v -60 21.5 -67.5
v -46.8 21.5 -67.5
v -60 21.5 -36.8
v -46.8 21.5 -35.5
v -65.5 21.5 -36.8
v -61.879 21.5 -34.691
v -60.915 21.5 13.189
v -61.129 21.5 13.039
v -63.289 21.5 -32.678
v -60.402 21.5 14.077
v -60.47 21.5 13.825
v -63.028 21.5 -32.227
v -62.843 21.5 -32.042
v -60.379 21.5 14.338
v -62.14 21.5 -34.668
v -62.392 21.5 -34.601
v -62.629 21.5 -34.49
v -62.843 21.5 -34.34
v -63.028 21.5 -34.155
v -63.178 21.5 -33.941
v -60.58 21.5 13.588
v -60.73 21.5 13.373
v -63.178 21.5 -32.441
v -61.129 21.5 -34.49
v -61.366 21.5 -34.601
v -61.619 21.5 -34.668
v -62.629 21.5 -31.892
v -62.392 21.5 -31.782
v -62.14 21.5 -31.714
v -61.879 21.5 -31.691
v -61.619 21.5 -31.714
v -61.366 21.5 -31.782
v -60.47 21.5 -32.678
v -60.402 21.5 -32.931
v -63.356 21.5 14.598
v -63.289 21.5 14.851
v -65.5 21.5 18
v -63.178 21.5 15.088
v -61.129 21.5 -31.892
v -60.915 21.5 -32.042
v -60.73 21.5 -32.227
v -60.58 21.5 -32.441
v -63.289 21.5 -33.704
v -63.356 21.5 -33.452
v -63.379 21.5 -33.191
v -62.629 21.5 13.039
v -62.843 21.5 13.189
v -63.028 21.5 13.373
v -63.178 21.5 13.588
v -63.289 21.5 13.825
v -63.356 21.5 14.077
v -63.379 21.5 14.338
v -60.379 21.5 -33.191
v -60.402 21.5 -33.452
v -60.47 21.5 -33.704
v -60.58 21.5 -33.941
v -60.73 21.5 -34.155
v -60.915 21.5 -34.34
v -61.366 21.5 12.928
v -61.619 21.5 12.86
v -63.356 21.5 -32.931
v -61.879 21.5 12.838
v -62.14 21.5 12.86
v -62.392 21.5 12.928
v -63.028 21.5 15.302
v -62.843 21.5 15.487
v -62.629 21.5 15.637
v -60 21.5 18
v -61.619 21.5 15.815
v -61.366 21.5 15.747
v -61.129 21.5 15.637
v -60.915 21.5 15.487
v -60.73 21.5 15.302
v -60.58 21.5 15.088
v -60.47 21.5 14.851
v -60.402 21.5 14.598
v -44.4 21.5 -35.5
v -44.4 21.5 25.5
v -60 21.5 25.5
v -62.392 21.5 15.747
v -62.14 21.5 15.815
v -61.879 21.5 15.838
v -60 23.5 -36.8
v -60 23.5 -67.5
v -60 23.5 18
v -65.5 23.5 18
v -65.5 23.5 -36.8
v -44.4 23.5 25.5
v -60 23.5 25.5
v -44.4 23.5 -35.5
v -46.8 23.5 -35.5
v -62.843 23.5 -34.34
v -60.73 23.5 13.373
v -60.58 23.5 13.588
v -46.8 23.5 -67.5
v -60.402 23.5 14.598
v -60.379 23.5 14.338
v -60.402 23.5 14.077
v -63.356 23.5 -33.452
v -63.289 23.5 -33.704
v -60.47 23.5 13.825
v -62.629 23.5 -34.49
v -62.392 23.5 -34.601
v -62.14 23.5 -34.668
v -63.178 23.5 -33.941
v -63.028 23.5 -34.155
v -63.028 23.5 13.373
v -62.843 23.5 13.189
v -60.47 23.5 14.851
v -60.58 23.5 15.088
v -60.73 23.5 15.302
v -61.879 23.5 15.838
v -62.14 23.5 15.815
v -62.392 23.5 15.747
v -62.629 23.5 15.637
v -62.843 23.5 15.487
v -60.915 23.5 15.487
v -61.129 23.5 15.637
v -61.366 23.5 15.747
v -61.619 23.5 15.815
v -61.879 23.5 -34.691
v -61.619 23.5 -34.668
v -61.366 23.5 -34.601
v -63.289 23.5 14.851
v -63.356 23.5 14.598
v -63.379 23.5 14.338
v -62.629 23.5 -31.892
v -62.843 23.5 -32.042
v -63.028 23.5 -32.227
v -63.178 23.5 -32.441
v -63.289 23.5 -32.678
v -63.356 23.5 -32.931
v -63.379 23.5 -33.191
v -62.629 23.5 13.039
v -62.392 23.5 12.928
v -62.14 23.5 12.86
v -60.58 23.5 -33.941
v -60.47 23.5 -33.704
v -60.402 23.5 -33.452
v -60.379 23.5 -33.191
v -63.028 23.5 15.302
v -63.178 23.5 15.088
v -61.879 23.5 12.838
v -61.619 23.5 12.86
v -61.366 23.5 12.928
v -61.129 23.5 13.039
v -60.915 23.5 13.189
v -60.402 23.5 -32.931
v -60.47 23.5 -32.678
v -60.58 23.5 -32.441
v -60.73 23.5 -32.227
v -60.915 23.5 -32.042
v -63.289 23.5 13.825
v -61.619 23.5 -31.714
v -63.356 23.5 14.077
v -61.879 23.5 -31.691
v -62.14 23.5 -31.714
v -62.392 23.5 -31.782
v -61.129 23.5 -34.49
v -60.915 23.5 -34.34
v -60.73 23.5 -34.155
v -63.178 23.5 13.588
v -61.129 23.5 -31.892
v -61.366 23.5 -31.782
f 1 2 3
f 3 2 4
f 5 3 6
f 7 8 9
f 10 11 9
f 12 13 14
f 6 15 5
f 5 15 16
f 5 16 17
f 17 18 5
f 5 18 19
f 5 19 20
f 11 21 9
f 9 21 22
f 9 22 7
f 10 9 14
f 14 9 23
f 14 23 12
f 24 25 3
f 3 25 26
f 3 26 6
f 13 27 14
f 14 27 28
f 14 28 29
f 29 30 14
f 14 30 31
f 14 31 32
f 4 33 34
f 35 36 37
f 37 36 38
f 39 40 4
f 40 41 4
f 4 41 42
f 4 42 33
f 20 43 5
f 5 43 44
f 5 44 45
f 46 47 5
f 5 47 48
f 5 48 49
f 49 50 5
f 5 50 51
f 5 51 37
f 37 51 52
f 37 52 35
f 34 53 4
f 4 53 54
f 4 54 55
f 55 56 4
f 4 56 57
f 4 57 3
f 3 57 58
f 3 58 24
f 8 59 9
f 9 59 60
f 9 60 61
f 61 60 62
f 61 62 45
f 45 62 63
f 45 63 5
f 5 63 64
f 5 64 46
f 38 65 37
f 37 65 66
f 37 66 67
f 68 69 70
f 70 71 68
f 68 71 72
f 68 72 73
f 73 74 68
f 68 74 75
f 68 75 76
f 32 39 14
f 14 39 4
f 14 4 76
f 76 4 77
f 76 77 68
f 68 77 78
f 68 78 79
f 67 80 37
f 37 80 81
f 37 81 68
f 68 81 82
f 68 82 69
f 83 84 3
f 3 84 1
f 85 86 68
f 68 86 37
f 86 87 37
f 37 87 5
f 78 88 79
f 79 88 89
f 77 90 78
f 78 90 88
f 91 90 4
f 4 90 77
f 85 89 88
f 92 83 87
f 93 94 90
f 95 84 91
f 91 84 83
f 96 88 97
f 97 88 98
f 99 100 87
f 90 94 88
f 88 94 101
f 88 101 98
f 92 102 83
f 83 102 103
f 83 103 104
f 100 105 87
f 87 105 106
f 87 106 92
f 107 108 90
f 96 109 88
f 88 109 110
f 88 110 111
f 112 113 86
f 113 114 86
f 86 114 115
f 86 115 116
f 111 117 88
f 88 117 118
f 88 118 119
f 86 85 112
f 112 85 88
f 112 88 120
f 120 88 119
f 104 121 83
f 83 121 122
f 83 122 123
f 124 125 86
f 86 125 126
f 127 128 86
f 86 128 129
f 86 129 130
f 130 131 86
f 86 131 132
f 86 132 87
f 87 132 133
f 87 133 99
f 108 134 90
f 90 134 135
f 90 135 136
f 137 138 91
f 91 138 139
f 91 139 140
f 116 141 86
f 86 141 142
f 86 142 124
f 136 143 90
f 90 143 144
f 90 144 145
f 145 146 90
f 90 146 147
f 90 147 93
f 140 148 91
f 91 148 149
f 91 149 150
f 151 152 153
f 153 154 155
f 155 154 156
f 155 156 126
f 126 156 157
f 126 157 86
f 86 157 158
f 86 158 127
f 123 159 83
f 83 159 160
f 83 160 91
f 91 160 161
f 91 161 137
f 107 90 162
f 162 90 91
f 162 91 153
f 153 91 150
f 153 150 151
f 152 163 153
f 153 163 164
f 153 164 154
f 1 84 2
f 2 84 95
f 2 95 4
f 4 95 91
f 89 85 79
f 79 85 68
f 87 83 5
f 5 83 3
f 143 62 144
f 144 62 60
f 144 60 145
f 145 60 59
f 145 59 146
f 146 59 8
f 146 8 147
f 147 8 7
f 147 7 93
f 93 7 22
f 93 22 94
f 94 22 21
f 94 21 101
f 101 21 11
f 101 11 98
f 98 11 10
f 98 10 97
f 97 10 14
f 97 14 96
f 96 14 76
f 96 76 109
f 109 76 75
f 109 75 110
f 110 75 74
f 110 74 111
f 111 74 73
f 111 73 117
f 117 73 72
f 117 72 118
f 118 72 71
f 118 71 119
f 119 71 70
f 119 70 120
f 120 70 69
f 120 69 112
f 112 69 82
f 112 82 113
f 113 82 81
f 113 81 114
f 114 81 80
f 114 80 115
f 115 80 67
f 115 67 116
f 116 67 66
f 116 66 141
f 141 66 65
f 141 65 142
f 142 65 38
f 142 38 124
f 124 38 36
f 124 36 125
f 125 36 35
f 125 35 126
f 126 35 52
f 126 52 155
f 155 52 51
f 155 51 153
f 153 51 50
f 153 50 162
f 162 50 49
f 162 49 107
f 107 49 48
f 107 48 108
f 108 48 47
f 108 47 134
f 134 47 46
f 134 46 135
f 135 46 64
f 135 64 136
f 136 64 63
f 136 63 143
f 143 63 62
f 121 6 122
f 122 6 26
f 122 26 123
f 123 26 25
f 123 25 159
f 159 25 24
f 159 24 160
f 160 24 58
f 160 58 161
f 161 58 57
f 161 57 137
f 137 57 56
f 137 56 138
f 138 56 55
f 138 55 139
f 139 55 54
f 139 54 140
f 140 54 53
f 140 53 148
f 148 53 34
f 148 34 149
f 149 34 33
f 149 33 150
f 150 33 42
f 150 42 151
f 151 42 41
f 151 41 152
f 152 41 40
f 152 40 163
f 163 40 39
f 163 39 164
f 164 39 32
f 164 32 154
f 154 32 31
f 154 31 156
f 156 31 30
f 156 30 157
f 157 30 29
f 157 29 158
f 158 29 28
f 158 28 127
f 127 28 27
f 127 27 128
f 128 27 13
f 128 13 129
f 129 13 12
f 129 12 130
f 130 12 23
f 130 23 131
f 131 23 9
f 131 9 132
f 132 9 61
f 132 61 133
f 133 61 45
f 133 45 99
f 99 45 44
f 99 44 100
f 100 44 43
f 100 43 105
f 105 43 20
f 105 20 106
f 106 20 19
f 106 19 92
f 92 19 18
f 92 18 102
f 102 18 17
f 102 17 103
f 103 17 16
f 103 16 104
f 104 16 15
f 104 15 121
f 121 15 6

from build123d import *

# Parameters (mm, degrees)
BOSS_EXTRUDE1_DEPTH = 1.5
SKETCH2_W           = 4.8
SKETCH2_H           = 18
BOSS_EXTRUDE2_DEPTH = 20
SKETCH3_R           = 1.5
CUT_EXTRUDE1_DEPTH  = 20
SKETCH4_R           = 3
SKETCH4_R_2         = 1.5
SKETCH4_W           = 4.828517764
SKETCH4_H           = 3.2
SKETCH4_W_2         = 5.829541735
SKETCH4_H_2         = 5.702554953
SKETCH4_W_3         = 4.58984945
BOSS_EXTRUDE3_DEPTH = 3.8
SKETCH5_W           = 7.960049614
SKETCH5_H           = 4.589179968
SKETCH5_R           = 1.5
SKETCH5_W_2         = 8.506770289
SKETCH5_H_2         = 5.091999219
SKETCH5_W_3         = 7.172313144
SKETCH5_H_3         = 12.5
SKETCH5_H_4         = 13
BOSS_EXTRUDE4_DEPTH = 4.25
SKETCH6_W           = 6.917388718
SKETCH6_H           = 7.693263261
SKETCH6_R           = 1.5
SKETCH6_W_2         = 6.017640473
SKETCH6_H_2         = 7.169329529
BOSS_EXTRUDE5_DEPTH = 12.5
SKETCH7_R           = 1.5
BOSS_EXTRUDE7_DEPTH = 2
INTERSECT1_DEPTH    = 21.5


# Read off the part's stored shape, not the designer's step: Intersect1
with BuildPart() as part:
    # Sketch1 → Boss-Extrude1 (new body)
    with BuildSketch(Plane(origin=(0, 0, 0), x_dir=(1, 0, 0), z_dir=(0, 1, 0))):
        Polygon((-60, -67.5), (-60, -72.5), (-52, -72.5), (-52, -67.5), (52, -67.5), (52, -72.5), (60, -72.5), (60, -67.5), (60, 67.5), (-60, 67.5), (-60, 36.8), (-65.5, 36.8), (-65.5, 29.3), (-60, 29.3), (-60, 16.8), (-65.5, 16.8), (-65.5, 7.8), (-65.5, -1.2), (-60, -1.2), (-60, -10.5), (-65.5, -10.5), (-65.5, -18), (-60, -18), align=None)
    extrude(amount=BOSS_EXTRUDE1_DEPTH)

    # Sketch2 → Boss-Extrude2 (add)
    with BuildSketch(Plane(origin=(0, 1.5, 0), x_dir=(1, 0, 0), z_dir=(0, 1, 0))):
        Polygon((-58, 62.8), (-58, 29.3), (-60, 29.3), (-65.5, 29.3), (-65.5, 36.8), (-60, 36.8), (-60, 67.5), (-55.3, 67.5), (-55.3, 65.5), align=None)
        with BuildLine():
            Line((-58, -65.5), (58, -65.5))
            Line((58, -65.5), (58, -25.5))
            Line((58, -25.5), (29.8, -25.5))
            Line((29.8, -25.5), (29.8, -18))
            Line((29.8, -18), (58, -18))
            Line((58, -18), (58, 38.5))
            ThreePointArc((58, 38.5), (57.414213562, 39.914213562), (56, 40.5))
            Line((56, 40.5), (51.8, 40.5))
            ThreePointArc((51.8, 40.5), (50.385786438, 41.085786438), (49.8, 42.5))
            Line((49.8, 42.5), (49.8, 48.75))
            Line((49.8, 48.75), (51.3, 48.75))
            Line((51.3, 48.75), (51.3, 47.25))
            Line((51.3, 47.25), (58, 47.25))
            Line((58, 47.25), (58, 51.25))
            Line((58, 51.25), (60, 51.25))
            Line((60, 51.25), (60, -72.5))
            Line((60, -72.5), (52, -72.5))
            Line((52, -72.5), (52, -67.5))
            Line((52, -67.5), (-52, -67.5))
            Line((-52, -67.5), (-52, -72.5))
            Line((-52, -72.5), (-60, -72.5))
            Line((-60, -72.5), (-60, -52.5))
            Line((-60, -52.5), (-58, -52.5))
            Line((-58, -52.5), (-58, -65.5))
        make_face()
        Polygon((-60, 16.8), (-58, 16.8), (-58, -1.2), (-60, -1.2), (-65.5, -1.2), (-65.5, 16.8), align=None)
        Polygon((-60, -10.5), (-58, -10.5), (-58, -38), (-60, -38), (-60, -18), (-65.5, -18), (-65.5, -10.5), align=None)
        with BuildLine():
            Line((-48.8, 67.5), (-48.8, 65.5))
            Line((-48.8, 65.5), (-46.8, 62.8))
            Line((-46.8, 62.8), (-46.8, 58.5))
            Line((-46.8, 58.5), (-44.8, 58.5))
            Line((-44.8, 58.5), (-37.8, 64.5))
            Line((-37.8, 64.5), (38.8, 64.5))
            Line((38.8, 64.5), (44.8, 58.5))
            Line((44.8, 58.5), (44.8, 46.5))
            Line((44.8, 46.5), (41.3, 46.5))
            Line((41.3, 46.5), (41.3, 42.5))
            Line((41.3, 42.5), (38.85, 42.5))
            Line((38.85, 42.5), (38.85, 40.5))
            Line((38.85, 40.5), (44.8, 40.5))
            ThreePointArc((44.8, 40.5), (46.214213562, 41.085786438), (46.8, 42.5))
            Line((46.8, 42.5), (46.8, 46.5))
            Line((46.8, 46.5), (46.8, 57.25))
            Line((46.8, 57.25), (51.3, 57.25))
            Line((51.3, 57.25), (51.3, 58.75))
            Line((51.3, 58.75), (58, 58.75))
            Line((58, 58.75), (58, 54.75))
            Line((58, 54.75), (60, 54.75))
            Line((60, 54.75), (60, 67.5))
            Line((60, 67.5), (-48.8, 67.5))
        make_face()
        Polygon((-46.8, 46.5), (-39.5, 46.5), (-39.5, 42.5), (-37.05, 42.5), (-37.05, 40.5), (-46.8, 40.5), align=None)
        Polygon((-33.55, 42.5), (-33.55, 40.5), (-18.65, 40.5), (-18.65, 42.5), (-21.1, 42.5), (-21.1, 46.5), (-31.1, 46.5), (-31.1, 42.5), align=None)
        Polygon((-15.55, 40.5), (-0.65, 40.5), (-0.65, 42.5), (-3.1, 42.5), (-3.1, 46.5), (-13.1, 46.5), (-13.1, 42.5), (-15.55, 42.5), align=None)
        Polygon((2.45, 40.5), (17.35, 40.5), (17.35, 42.5), (14.9, 42.5), (14.9, 46.5), (4.9, 46.5), (4.9, 42.5), (2.45, 42.5), align=None)
        Polygon((20.45, 40.5), (35.35, 40.5), (35.35, 42.5), (32.9, 42.5), (32.9, 46.5), (22.9, 46.5), (22.9, 42.5), (20.45, 42.5), align=None)
        Polygon((-46.8, 35.5), (-49.2, 35.5), (-49.2, 29.3), (-44.4, 29.3), (-44.4, 35.5), align=None)
        with Locations((-46.8, 7.8)):
            Rectangle(SKETCH2_W, SKETCH2_H)
        Polygon((-49.2, -10.5), (-44.4, -10.5), (-44.4, -18), (-16.9, -18), (-16.9, -25.5), (-46.4, -25.5), (-46.4, -19.9), (-49.2, -14), align=None)
    extrude(amount=BOSS_EXTRUDE2_DEPTH)

    # Sketch3 → Cut-Extrude1 (cut)
    with BuildSketch(Plane(origin=(0, 21.5, 0), x_dir=(1, 0, 0), z_dir=(0, 1, 0))):
        with Locations(Location((52.774715074, 63.354517547, 0), (0, 0, 270))):
            Circle(SKETCH3_R)
        with Locations(Location((-43.84271688, 64.854517547, 0), (0, 0, 270))):
            Circle(SKETCH3_R)
        with Locations(Location((-61.879270776, 33.191143968, 0), (0, 0, 270))):
            Circle(SKETCH3_R)
        with Locations(Location((-61.879270776, -14.337618299, 0), (0, 0, 270))):
            Circle(SKETCH3_R)
        with Locations(Location((54.274715074, 43.945098524, 0), (0, 0, 270))):
            Circle(SKETCH3_R)
        with Locations(Location((-21.029637868, -21.862387391, 0), (0, 0, 270))):
            Circle(SKETCH3_R)
        with Locations(Location((34.3, -21.75, 0), (0, 0, 270))):
            Circle(SKETCH3_R)
        with Locations(Location((-56, -69, 0), (0, 0, 270))):
            Circle(SKETCH3_R)
        with Locations(Location((56, -69, 0), (0, 0, 270))):
            Circle(SKETCH3_R)
    extrude(amount=-CUT_EXTRUDE1_DEPTH, mode=Mode.SUBTRACT)

    # Sketch4 → Boss-Extrude3 (add)
    # profile 1 of 5: a face of its own
    with BuildSketch(Plane(origin=(0, 1.5, 0), x_dir=(1, 0, 0), z_dir=(0, 1, 0))):
        with Locations(Location((21.544764921, -8.320497528, 0), (0, 0, 90))):
            Circle(SKETCH4_R)
        with Locations(Location((21.544764921, -8.320497528, 0), (0, 0, 90))):
            Circle(SKETCH4_R_2, mode=Mode.SUBTRACT)
    # profile 2 of 5: a face of its own
    with BuildSketch(Plane(origin=(0, 1.5, 0), x_dir=(1, 0, 0), z_dir=(0, 1, 0))):
        with Locations(Location((21.544764921, 19.479502472, 0), (0, 0, 90))):
            Circle(SKETCH4_R)
        with Locations(Location((21.544764921, 19.479502472, 0), (0, 0, 90))):
            Circle(SKETCH4_R_2, mode=Mode.SUBTRACT)
    # profile 3 of 5: a face of its own
    with BuildSketch(Plane(origin=(0, 1.5, 0), x_dir=(1, 0, 0), z_dir=(0, 1, 0))):
        with Locations((-29.2, 33.9)):
            Rectangle(SKETCH4_W, SKETCH4_H)
        with Locations(Location((-29.2, 33.9, 0), (0, 0, 90))):
            Circle(SKETCH4_R_2, mode=Mode.SUBTRACT)
    # profile 4 of 5: a face of its own
    with BuildSketch(Plane(origin=(0, 1.5, 0), x_dir=(1, 0, 0), z_dir=(0, 1, 0))):
        with Locations((-30.25253813, -15.148722524)):
            Rectangle(SKETCH4_W_2, SKETCH4_H_2)
        with Locations(Location((-30.3, -14.4, 0), (0, 0, 90))):
            Circle(SKETCH4_R_2, mode=Mode.SUBTRACT)
    # profile 5 of 5: a face of its own
    with BuildSketch(Plane(origin=(0, 1.5, 0), x_dir=(1, 0, 0), z_dir=(0, 1, 0))):
        with Locations((51.718864017, -15.148722524)):
            Rectangle(SKETCH4_W_3, SKETCH4_H_2)
        with Locations(Location((51.8, -14.4, 0), (0, 0, 90))):
            Circle(SKETCH4_R_2, mode=Mode.SUBTRACT)
    extrude(amount=BOSS_EXTRUDE3_DEPTH)

    # Sketch5 → Boss-Extrude4 (add)
    # profile 1 of 4: a face of its own
    with BuildSketch(Plane(origin=(0, 1.5, 0), x_dir=(1, 0, 0), z_dir=(0, 1, 0))):
        with Locations((-54.019975193, -35.705410016)):
            Rectangle(SKETCH5_W, SKETCH5_H)
        with Locations(Location((-52.773553759, -35.8, 0), (0, 0, 270))):
            Circle(SKETCH5_R, mode=Mode.SUBTRACT)
    # profile 2 of 4: a face of its own
    with BuildSketch(Plane(origin=(0, 1.5, 0), x_dir=(1, 0, 0), z_dir=(0, 1, 0))):
        with Locations((-53.746614856, -55.04599961)):
            Rectangle(SKETCH5_W_2, SKETCH5_H_2)
        with Locations(Location((-52.773553759, -54.7, 0), (0, 0, 270))):
            Circle(SKETCH5_R, mode=Mode.SUBTRACT)
    # profile 3 of 4: a face of its own
    with BuildSketch(Plane(origin=(0, 1.5, 0), x_dir=(1, 0, 0), z_dir=(0, 1, 0))):
        with Locations((-27.40354529, -31.75)):
            Rectangle(SKETCH5_W_3, SKETCH5_H_3)
        with Locations(Location((-27.173553759, -35.8, 0), (0, 0, 270))):
            Circle(SKETCH5_R, mode=Mode.SUBTRACT)
    # profile 4 of 4: a face of its own
    with BuildSketch(Plane(origin=(0, 1.5, 0), x_dir=(1, 0, 0), z_dir=(0, 1, 0))):
        with Locations((-27.40354529, -59)):
            Rectangle(SKETCH5_W_3, SKETCH5_H_4)
        with Locations(Location((-27.173553759, -54.7, 0), (0, 0, 270))):
            Circle(SKETCH5_R, mode=Mode.SUBTRACT)
    extrude(amount=BOSS_EXTRUDE4_DEPTH)

    # Sketch6 → Boss-Extrude5 (add)
    # profile 1 of 4: a face of its own
    with BuildSketch(Plane(origin=(0, 1.5, 0), x_dir=(1, 0, 0), z_dir=(0, 1, 0))):
        with Locations((-20.358694359, -29.346631631)):
            Rectangle(SKETCH6_W, SKETCH6_H)
        with Locations(Location((-19.26, -30.5, 0), (0, 0, 270))):
            Circle(SKETCH6_R, mode=Mode.SUBTRACT)
    # profile 2 of 4: a face of its own
    with BuildSketch(Plane(origin=(0, 1.5, 0), x_dir=(1, 0, 0), z_dir=(0, 1, 0))):
        with Locations((54.991179763, -29.346631631)):
            Rectangle(SKETCH6_W_2, SKETCH6_H)
        with Locations(Location((55.14, -30.5, 0), (0, 0, 270))):
            Circle(SKETCH6_R, mode=Mode.SUBTRACT)
    # profile 3 of 4: a face of its own
    with BuildSketch(Plane(origin=(0, 1.5, 0), x_dir=(1, 0, 0), z_dir=(0, 1, 0))):
        with Locations((54.991179763, -61.915335236)):
            Rectangle(SKETCH6_W_2, SKETCH6_H_2)
        with Locations(Location((55.14, -61.1, 0), (0, 0, 270))):
            Circle(SKETCH6_R, mode=Mode.SUBTRACT)
    # profile 4 of 4: a face of its own
    with BuildSketch(Plane(origin=(0, 1.5, 0), x_dir=(1, 0, 0), z_dir=(0, 1, 0))):
        with Locations((-20.358694359, -61.915335236)):
            Rectangle(SKETCH6_W, SKETCH6_H_2)
        with Locations(Location((-19.26, -61.1, 0), (0, 0, 270))):
            Circle(SKETCH6_R, mode=Mode.SUBTRACT)
    extrude(amount=BOSS_EXTRUDE5_DEPTH)

    # Intersect1 outline → Intersect1 (cut)
    with BuildSketch(Plane(origin=(0, 0, 0), x_dir=(1, 0, 0), z_dir=(0, 1, 0))):
        Polygon((-60, -72.5), (-52, -72.5), (-52, -67.5), (52, -67.5), (52, -72.5), (60, -72.5), (60, 67.5), (-60, 67.5), (-60, 36.8), (-65.5, 36.8), (-65.5, 29.3), (-60, 29.3), (-60, 16.8), (-65.5, 16.8), (-65.5, -1.2), (-60, -1.2), (-60, -10.5), (-65.5, -10.5), (-65.5, -18), (-60, -18), align=None)
    extrude(amount=INTERSECT1_DEPTH, mode=Mode.SUBTRACT)


with BuildPart() as body_2:
    # Sketch7 → Boss-Extrude7 (new body)
    with BuildSketch(Plane(origin=(0, 21.5, 0), x_dir=(1, 0, 0), z_dir=(0, 1, 0))):
        Polygon((-60, 67.5), (-60, 36.8), (-65.5, 36.8), (-65.5, -18), (-60, -18), (-60, -25.5), (-46.4, -25.5), (-44.4, -25.5), (-44.4, -10.5), (-44.4, 35.5), (-46.8, 35.5), (-46.8, 62.8), (-46.8, 67.5), align=None)
        with Locations(Location((-61.879270776, -14.337618299, 0), (0, 0, 270))):
            Circle(SKETCH7_R, mode=Mode.SUBTRACT)
        with Locations(Location((-61.879270776, 33.191143968, 0), (0, 0, 270))):
            Circle(SKETCH7_R, mode=Mode.SUBTRACT)
    extrude(amount=BOSS_EXTRUDE7_DEPTH)


solid = body_2.part
